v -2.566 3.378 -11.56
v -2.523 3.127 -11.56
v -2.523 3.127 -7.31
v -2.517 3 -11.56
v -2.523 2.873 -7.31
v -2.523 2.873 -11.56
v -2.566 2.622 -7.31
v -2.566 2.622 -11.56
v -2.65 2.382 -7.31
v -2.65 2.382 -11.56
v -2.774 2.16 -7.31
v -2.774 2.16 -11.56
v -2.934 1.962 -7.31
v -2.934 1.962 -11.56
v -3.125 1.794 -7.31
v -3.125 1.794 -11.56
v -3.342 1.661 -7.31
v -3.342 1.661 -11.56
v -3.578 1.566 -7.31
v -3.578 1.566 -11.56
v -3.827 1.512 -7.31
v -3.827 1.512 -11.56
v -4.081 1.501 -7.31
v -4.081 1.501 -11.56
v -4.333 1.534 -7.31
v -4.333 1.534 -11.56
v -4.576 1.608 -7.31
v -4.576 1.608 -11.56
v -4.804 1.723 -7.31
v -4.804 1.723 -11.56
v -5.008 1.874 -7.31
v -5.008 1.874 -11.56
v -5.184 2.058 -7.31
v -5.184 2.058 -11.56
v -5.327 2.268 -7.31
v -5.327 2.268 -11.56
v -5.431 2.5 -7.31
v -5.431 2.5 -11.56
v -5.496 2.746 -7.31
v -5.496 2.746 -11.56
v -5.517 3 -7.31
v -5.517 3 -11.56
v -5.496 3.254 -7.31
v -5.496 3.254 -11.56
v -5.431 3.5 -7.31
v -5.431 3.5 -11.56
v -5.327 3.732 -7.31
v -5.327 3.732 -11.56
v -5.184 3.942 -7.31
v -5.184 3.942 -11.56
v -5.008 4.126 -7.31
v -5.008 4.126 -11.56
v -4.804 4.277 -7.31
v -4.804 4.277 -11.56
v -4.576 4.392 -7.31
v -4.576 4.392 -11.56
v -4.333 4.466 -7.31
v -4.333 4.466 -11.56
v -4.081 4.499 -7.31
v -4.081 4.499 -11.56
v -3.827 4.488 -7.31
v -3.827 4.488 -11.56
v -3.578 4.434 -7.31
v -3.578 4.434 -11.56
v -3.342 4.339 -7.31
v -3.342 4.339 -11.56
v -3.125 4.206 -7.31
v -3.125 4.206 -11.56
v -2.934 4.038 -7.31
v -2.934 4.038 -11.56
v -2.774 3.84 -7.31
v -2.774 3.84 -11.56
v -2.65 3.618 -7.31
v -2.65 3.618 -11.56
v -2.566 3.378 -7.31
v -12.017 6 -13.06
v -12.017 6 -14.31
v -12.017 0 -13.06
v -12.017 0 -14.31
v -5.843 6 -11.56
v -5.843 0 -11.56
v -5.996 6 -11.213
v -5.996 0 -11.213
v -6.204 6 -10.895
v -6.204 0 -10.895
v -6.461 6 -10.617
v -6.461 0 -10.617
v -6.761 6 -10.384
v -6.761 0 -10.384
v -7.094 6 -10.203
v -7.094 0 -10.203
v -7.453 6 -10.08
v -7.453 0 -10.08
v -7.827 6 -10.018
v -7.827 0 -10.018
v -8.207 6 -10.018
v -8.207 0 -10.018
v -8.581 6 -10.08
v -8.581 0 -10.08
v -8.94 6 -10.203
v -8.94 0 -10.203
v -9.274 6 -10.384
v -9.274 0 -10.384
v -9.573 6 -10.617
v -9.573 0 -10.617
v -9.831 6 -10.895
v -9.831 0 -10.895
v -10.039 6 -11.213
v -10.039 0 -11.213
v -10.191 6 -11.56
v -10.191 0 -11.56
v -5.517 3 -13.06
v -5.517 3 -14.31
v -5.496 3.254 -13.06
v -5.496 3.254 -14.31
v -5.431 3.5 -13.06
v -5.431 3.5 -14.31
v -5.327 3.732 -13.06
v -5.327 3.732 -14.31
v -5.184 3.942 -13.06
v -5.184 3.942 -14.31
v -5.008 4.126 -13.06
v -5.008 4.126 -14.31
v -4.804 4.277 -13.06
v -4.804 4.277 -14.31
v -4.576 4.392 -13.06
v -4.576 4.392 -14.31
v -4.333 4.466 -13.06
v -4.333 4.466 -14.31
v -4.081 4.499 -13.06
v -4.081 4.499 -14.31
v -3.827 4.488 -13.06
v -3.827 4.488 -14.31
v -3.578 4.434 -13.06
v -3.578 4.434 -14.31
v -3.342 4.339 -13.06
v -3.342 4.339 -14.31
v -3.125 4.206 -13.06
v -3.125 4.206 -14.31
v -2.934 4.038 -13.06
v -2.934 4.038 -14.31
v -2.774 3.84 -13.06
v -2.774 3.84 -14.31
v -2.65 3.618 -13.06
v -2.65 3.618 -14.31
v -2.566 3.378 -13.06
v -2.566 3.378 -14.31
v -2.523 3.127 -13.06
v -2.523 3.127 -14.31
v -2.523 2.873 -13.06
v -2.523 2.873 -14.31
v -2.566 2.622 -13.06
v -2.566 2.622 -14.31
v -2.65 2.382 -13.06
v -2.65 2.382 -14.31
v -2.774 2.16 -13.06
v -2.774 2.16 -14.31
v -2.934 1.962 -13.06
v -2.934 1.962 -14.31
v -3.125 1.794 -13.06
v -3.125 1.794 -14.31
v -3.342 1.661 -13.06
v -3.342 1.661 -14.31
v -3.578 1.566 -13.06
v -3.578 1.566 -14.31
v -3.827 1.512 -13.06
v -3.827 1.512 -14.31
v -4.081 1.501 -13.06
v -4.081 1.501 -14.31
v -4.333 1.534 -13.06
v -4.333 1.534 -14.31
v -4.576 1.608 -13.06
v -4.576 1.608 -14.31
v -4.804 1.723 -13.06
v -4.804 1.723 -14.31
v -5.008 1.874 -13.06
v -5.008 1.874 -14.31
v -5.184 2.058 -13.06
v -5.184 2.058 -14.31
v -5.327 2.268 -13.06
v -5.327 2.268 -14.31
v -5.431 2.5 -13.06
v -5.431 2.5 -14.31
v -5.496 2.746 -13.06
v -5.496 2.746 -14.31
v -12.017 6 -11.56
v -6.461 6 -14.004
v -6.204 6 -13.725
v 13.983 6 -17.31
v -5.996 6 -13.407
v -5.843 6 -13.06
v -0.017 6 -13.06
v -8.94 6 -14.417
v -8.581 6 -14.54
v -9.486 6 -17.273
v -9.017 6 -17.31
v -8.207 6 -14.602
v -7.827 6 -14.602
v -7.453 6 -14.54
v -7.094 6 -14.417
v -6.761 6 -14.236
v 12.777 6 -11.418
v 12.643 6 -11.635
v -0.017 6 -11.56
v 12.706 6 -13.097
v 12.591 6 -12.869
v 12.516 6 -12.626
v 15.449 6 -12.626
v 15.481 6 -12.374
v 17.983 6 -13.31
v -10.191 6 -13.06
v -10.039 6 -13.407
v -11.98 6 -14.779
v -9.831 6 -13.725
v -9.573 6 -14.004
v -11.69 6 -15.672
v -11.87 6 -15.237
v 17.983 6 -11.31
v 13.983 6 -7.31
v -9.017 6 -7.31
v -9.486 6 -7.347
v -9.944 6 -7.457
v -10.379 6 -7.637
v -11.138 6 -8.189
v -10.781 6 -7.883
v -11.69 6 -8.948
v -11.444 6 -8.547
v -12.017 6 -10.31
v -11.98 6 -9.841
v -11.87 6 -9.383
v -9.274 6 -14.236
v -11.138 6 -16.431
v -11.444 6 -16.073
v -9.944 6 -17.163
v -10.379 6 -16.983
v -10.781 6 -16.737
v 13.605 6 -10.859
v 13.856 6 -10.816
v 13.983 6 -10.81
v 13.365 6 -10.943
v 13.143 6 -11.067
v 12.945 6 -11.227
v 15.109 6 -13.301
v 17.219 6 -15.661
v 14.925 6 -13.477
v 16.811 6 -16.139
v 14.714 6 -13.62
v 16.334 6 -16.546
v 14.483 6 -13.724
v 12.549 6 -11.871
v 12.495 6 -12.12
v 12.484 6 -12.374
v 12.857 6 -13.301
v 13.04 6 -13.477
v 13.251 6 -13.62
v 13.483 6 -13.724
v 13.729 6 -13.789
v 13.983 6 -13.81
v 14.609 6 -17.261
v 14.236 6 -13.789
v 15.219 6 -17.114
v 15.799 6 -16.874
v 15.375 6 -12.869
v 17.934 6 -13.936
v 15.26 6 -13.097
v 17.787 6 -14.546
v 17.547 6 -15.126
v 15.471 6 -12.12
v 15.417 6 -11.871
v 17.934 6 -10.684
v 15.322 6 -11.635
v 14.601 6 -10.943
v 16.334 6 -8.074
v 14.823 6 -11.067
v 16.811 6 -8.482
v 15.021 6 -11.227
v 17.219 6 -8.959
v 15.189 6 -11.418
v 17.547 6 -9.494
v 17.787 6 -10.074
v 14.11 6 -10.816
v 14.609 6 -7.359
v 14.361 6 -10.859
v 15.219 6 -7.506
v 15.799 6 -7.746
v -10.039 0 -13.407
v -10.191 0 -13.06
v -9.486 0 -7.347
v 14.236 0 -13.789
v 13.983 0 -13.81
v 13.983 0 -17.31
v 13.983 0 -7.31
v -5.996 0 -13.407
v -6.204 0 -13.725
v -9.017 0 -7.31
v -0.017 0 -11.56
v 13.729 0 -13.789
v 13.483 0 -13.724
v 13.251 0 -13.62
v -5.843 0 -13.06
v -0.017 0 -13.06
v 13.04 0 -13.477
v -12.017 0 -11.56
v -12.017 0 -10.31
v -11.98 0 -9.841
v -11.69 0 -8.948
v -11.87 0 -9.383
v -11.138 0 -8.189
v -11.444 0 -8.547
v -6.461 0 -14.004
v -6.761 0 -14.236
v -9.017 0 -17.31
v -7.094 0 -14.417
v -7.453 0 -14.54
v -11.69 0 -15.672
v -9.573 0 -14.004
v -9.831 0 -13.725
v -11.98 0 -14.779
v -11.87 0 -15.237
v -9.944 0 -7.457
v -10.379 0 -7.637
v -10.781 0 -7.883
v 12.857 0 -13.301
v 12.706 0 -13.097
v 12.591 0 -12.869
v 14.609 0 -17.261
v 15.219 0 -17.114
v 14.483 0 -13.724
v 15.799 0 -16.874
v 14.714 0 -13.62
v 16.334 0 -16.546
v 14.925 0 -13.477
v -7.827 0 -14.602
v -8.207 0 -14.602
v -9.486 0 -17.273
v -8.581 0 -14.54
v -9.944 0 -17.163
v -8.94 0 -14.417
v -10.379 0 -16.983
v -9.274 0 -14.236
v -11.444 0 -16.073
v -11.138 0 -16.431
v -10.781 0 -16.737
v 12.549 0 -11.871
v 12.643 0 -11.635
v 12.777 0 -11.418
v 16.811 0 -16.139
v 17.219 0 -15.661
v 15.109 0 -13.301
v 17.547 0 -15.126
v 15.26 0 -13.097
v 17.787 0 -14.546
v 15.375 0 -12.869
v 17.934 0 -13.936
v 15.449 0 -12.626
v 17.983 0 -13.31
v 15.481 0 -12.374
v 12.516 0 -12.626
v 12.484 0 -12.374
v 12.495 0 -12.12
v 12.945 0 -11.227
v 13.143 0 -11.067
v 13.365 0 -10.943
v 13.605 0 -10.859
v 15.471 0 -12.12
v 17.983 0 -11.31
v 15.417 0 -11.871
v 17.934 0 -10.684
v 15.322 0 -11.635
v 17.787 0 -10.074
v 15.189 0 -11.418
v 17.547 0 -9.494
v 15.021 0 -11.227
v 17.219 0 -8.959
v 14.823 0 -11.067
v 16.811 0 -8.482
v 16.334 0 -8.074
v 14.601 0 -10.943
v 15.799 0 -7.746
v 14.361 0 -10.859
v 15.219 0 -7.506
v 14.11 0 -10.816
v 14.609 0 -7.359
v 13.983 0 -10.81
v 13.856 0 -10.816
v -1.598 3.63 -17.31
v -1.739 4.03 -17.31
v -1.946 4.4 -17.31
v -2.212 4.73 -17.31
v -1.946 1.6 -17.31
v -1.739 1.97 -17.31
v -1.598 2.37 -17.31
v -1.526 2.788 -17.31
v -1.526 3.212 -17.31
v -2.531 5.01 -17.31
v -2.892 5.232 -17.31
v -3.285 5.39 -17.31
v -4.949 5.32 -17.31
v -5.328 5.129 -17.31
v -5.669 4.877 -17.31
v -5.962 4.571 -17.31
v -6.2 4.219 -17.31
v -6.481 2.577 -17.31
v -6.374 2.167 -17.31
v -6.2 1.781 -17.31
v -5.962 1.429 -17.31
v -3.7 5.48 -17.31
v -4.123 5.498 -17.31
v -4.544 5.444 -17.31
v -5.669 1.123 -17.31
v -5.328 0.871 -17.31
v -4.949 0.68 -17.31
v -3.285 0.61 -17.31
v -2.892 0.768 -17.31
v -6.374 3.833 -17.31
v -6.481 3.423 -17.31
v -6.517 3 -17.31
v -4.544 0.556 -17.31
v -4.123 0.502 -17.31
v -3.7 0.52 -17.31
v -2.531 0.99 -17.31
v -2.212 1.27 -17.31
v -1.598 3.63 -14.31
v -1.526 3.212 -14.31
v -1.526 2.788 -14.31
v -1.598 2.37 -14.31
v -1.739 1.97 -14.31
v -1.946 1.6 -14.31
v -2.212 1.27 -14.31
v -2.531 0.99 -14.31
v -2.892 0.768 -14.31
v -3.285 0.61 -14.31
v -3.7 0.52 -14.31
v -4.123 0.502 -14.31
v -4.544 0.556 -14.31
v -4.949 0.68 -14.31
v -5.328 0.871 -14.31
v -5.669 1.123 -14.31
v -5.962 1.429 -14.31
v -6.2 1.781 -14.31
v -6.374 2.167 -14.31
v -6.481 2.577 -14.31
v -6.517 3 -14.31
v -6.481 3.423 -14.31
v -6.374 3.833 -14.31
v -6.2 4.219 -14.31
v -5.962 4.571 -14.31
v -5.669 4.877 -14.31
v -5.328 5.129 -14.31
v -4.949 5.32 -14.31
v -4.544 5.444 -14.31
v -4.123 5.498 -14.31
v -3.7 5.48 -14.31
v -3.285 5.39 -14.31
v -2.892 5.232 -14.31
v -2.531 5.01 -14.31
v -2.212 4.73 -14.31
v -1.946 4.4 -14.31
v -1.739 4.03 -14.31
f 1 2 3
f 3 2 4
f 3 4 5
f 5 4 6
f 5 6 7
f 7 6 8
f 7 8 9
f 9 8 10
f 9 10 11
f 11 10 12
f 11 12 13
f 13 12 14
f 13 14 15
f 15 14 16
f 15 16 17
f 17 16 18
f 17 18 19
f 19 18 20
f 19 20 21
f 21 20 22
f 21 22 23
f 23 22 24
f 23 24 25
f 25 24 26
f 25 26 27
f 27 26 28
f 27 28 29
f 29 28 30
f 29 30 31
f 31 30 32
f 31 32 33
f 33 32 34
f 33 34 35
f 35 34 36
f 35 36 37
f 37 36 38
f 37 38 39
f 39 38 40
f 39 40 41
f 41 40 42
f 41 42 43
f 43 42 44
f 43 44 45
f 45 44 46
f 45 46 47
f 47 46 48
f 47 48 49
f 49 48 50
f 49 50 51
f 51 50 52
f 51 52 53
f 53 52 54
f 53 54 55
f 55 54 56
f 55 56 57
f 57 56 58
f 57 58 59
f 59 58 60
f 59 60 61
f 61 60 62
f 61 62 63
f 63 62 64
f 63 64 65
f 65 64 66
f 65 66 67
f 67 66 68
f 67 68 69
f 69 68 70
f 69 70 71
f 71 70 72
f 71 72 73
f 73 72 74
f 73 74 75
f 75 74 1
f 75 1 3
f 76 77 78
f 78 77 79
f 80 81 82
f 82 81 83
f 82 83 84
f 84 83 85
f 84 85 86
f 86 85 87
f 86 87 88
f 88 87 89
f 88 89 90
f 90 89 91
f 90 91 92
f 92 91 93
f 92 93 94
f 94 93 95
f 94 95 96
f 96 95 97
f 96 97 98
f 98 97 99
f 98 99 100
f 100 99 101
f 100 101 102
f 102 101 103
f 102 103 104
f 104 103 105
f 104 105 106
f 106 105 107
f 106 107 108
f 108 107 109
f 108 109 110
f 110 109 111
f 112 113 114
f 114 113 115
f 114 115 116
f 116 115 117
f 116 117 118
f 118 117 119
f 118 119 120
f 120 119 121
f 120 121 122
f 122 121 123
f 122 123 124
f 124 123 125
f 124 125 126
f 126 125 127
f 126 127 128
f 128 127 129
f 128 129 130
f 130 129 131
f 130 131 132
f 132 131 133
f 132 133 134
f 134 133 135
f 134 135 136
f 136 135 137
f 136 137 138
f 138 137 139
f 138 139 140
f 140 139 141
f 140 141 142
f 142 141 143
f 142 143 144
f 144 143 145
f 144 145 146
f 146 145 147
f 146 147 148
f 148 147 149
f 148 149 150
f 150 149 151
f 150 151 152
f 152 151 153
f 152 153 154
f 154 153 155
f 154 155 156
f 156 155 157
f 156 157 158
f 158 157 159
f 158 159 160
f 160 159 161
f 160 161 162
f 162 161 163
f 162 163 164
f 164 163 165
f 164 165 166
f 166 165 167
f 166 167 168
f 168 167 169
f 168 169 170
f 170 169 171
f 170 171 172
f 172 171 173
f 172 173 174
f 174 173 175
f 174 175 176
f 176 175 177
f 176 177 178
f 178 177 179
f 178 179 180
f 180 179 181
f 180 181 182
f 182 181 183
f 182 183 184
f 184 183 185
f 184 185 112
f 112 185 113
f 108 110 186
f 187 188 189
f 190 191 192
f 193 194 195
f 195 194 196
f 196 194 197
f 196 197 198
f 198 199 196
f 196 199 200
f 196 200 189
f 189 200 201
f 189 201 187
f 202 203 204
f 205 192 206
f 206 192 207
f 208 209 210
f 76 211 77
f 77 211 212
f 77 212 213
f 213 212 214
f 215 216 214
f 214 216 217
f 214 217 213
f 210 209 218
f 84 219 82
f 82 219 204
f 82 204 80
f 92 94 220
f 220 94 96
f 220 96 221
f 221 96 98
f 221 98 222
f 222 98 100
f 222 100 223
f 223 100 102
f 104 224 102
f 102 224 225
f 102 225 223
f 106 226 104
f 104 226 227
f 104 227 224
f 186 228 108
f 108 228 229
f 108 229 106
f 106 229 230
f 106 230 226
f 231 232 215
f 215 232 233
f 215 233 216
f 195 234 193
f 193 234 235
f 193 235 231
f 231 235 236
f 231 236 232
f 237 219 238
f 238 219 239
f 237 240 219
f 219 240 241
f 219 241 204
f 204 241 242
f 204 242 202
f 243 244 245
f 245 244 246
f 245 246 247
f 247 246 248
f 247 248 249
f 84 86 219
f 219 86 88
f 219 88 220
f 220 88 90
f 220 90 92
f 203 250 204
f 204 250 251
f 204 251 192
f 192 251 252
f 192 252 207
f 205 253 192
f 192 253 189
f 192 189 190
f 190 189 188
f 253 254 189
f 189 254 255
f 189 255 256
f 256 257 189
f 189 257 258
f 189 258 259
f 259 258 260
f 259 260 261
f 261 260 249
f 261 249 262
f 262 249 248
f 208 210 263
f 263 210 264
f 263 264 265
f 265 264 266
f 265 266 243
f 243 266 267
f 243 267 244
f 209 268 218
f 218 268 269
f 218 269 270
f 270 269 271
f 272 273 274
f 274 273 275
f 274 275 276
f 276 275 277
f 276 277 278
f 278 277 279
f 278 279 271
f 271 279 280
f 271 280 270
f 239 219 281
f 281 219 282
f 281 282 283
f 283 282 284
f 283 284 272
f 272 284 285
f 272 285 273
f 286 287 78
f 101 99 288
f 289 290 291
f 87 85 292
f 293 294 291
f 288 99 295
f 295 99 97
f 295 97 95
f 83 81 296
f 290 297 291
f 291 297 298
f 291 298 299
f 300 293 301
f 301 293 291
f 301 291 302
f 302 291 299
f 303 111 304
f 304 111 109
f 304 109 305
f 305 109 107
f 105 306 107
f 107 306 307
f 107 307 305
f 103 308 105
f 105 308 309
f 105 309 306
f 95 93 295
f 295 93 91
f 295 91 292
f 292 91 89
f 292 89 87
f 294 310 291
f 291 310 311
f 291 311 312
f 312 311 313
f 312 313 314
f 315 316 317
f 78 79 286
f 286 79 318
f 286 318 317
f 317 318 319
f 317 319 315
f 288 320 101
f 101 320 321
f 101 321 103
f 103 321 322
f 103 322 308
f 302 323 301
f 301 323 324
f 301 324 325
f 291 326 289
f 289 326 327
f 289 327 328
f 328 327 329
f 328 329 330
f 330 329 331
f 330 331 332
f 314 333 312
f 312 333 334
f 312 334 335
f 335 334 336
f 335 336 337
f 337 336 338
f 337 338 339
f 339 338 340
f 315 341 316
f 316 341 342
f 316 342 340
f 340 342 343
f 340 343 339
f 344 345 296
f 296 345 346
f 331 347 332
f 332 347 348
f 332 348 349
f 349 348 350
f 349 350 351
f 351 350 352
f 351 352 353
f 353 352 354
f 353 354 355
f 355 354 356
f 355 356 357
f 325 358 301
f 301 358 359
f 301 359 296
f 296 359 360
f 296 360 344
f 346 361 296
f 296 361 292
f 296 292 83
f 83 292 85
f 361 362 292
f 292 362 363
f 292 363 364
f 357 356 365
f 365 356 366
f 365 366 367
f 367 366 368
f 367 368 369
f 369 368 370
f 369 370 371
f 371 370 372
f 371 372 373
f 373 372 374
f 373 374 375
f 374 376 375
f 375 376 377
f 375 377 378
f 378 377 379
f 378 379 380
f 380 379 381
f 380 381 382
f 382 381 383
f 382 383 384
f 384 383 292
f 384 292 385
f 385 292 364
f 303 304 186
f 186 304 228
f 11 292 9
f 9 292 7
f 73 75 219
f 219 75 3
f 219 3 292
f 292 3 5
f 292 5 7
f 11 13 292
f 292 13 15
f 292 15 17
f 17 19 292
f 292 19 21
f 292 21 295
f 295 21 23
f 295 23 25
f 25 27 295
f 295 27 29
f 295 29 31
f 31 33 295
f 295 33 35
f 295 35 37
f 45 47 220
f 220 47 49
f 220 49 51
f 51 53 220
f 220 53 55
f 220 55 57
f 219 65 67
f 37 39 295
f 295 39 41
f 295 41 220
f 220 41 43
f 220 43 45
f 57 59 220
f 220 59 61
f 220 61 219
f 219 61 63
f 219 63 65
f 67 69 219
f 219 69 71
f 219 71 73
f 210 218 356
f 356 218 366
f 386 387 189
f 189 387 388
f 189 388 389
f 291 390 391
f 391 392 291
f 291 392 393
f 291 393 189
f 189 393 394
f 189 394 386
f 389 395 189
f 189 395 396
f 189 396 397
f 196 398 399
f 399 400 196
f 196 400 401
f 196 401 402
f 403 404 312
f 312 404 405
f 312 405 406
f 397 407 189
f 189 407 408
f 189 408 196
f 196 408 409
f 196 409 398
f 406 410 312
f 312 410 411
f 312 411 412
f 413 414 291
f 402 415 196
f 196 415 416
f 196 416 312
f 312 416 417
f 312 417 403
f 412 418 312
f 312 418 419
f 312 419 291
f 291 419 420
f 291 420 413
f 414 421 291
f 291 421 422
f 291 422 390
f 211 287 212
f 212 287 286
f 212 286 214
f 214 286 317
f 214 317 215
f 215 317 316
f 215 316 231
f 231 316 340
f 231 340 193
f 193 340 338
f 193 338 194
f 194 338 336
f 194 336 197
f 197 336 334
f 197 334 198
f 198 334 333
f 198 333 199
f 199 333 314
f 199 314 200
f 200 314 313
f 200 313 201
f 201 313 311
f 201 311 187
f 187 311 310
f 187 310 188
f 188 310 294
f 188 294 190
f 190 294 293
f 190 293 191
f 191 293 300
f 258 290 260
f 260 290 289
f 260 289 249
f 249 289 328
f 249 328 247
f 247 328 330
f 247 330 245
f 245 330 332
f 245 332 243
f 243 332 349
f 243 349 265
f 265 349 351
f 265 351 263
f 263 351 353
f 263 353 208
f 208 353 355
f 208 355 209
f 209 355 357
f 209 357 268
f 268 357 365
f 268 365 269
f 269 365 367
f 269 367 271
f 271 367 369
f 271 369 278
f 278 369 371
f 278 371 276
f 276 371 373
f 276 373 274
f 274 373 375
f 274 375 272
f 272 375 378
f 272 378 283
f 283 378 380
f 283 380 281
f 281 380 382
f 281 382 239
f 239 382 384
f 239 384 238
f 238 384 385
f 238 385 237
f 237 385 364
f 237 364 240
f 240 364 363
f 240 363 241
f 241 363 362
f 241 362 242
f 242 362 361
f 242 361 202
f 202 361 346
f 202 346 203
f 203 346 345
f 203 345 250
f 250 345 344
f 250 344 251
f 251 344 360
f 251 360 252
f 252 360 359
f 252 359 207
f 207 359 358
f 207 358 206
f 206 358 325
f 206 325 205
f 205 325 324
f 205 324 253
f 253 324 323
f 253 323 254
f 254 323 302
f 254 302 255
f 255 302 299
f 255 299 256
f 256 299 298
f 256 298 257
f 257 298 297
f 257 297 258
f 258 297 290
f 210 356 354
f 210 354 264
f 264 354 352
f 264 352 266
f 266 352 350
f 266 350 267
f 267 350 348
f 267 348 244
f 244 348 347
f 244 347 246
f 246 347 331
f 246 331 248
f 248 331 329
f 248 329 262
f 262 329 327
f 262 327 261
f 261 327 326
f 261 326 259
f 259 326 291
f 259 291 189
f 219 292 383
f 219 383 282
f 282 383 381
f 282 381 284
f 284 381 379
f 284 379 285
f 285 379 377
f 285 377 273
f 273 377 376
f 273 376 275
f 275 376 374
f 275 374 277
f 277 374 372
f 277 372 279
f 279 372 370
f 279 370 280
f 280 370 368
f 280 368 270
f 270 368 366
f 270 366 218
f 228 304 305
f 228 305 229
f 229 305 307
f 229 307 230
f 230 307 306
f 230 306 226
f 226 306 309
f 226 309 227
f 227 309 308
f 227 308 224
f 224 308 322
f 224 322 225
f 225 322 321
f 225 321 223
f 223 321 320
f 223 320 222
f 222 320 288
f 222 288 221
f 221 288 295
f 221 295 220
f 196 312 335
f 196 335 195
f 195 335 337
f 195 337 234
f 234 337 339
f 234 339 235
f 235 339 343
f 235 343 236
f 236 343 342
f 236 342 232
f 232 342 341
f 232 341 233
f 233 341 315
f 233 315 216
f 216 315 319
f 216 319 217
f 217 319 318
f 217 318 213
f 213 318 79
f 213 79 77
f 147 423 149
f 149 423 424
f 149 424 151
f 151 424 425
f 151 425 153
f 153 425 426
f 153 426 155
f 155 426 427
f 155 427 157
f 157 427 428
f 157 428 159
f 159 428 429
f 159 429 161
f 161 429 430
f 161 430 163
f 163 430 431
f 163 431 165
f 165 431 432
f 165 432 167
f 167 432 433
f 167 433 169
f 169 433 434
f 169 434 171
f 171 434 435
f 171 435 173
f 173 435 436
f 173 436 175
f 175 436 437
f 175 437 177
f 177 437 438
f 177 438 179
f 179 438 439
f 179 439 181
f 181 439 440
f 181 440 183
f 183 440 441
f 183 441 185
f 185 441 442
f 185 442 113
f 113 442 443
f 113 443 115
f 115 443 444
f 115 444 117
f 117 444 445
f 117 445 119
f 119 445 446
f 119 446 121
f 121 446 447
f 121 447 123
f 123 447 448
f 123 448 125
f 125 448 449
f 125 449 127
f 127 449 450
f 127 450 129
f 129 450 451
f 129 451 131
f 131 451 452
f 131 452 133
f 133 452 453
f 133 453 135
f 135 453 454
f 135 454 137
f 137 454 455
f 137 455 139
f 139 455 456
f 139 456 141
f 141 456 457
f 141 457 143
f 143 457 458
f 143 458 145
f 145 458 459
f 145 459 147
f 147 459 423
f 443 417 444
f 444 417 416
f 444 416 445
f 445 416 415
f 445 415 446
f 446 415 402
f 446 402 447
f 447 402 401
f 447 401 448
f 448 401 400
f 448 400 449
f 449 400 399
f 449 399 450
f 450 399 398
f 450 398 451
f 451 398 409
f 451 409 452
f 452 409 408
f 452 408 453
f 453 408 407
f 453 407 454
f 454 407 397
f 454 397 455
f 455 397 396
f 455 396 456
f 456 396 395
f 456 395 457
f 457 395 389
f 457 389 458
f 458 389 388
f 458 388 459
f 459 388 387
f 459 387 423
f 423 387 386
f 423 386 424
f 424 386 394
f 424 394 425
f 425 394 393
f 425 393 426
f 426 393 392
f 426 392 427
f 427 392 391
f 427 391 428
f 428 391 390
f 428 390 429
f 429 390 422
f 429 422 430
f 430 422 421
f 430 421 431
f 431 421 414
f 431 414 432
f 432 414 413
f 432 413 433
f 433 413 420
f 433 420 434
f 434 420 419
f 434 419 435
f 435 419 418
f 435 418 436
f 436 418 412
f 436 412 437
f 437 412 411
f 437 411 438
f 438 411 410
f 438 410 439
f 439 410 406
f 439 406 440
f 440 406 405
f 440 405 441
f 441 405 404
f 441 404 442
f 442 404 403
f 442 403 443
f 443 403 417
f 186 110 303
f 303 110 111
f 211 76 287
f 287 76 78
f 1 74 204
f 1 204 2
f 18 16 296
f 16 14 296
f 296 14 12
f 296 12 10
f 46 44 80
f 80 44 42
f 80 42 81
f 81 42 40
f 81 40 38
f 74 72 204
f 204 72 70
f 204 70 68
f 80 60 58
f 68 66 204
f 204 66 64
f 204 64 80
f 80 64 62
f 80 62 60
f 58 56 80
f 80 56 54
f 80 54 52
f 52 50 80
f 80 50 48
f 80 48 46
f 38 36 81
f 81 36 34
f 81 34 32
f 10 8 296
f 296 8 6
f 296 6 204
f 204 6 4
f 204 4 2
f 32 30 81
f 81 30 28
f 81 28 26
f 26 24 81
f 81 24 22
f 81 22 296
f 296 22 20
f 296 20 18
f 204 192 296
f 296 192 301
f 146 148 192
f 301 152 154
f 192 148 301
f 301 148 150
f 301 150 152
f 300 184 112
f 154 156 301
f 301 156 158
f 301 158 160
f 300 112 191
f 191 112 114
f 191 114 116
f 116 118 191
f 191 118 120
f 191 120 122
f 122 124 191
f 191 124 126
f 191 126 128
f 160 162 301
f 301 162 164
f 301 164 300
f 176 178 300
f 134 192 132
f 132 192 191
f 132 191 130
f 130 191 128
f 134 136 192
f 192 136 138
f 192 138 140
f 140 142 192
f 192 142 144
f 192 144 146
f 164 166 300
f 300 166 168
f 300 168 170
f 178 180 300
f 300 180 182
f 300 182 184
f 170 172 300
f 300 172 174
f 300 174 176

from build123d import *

# Parameters (mm, degrees)
SKETCH1_W           = 30
SKETCH1_H           = 10
SKETCH1_R           = 2.3
SKETCH1_R_2         = 1.5
BOSS_EXTRUDE1_DEPTH = 6
FILLET1_R           = 4
FILLET2_R           = 3
CUT_EXTRUDE1_REACH  = 23.433
SKETCH3_R           = 1.5
SKETCH4_R           = 1.75
CUT_EXTRUDE2_DEPTH  = 3
SKETCH7_R           = 2.5
CUT_EXTRUDE6_DEPTH  = 3
CUT_EXTRUDE7_START  = -6
SKETCH8_W           = 12
SKETCH8_H           = 1.5
CUT_EXTRUDE7_DEPTH  = 6


with BuildPart() as part:
    # Sketch1 → Boss-Extrude1 (new body)
    with BuildSketch(Plane(origin=(0, 0, 0), x_dir=(1, 0, 0), z_dir=(0, 1, 0))):
        with Locations((2.982829209, 12.310123294)):
            Rectangle(SKETCH1_W, SKETCH1_H)
        with Locations(Location((-8.017170791, 12.310123294, 0), (0, 0, 270))):
            Circle(SKETCH1_R, mode=Mode.SUBTRACT)
        with Locations(Location((13.982829209, 12.310123294, 0), (0, 0, 270))):
            Circle(SKETCH1_R_2, mode=Mode.SUBTRACT)
    extrude(amount=BOSS_EXTRUDE1_DEPTH)

    # Fillet1
    fillet1_edges = [part.edges().sort_by_distance(p)[0] for p in [
        (17.982829209, 3, -17.310123294),
        (17.982829209, 3, -7.310123294),
    ]]
    fillet(fillet1_edges, radius=FILLET1_R)

    # Fillet2
    fillet2_edges = [part.edges().sort_by_distance(p)[0] for p in [
        (-12.017170791, 3, -17.310123294),
        (-12.017170791, 3, -7.310123294),
    ]]
    fillet(fillet2_edges, radius=FILLET2_R)

    # Sketch3 → Cut-Extrude1 (cut, up to next)
    with BuildSketch(Plane(origin=(0, 0, -17.310123294), x_dir=(-1, 0, 0), z_dir=(0, 0, -1)), mode=Mode.PRIVATE) as cut_extrude1_sk1:
        with Locations((4.017170791, 3)):
            Circle(SKETCH3_R)
    cut_extrude1_tool1 = extrude(cut_extrude1_sk1.sketch, amount=-CUT_EXTRUDE1_REACH, mode=Mode.PRIVATE) & part.part
    add(cut_extrude1_tool1.solids().sort_by_distance((-4.017171, 3, -17.310123))[0], mode=Mode.SUBTRACT)

    # Sketch4 → Cut-Extrude2 (cut)
    with BuildSketch(Plane(origin=(0, 0, -17.310123294), x_dir=(-1, 0, 0), z_dir=(0, 0, -1))):
        with Locations((4.017170791, 3)):
            Circle(SKETCH4_R)
    extrude(amount=-CUT_EXTRUDE2_DEPTH, mode=Mode.SUBTRACT)

    # Sketch7 → Cut-Extrude6 (cut)
    with BuildSketch(Plane(origin=(0, 0, -17.310123294), x_dir=(-1, 0, 0), z_dir=(0, 0, -1))):
        with Locations((4.017170791, 3)):
            Circle(SKETCH7_R)
    extrude(amount=-CUT_EXTRUDE6_DEPTH, mode=Mode.SUBTRACT)

    # Sketch8 → Cut-Extrude7 (cut)
    with BuildSketch(Plane(origin=(0, 6, 0), x_dir=(1, 0, 0), z_dir=(0, 1, 0)).offset(CUT_EXTRUDE7_START)):
        with Locations((-6.017170791, 12.310123294)):
            Rectangle(SKETCH8_W, SKETCH8_H)
    extrude(amount=CUT_EXTRUDE7_DEPTH, mode=Mode.SUBTRACT)


solid = part.part
